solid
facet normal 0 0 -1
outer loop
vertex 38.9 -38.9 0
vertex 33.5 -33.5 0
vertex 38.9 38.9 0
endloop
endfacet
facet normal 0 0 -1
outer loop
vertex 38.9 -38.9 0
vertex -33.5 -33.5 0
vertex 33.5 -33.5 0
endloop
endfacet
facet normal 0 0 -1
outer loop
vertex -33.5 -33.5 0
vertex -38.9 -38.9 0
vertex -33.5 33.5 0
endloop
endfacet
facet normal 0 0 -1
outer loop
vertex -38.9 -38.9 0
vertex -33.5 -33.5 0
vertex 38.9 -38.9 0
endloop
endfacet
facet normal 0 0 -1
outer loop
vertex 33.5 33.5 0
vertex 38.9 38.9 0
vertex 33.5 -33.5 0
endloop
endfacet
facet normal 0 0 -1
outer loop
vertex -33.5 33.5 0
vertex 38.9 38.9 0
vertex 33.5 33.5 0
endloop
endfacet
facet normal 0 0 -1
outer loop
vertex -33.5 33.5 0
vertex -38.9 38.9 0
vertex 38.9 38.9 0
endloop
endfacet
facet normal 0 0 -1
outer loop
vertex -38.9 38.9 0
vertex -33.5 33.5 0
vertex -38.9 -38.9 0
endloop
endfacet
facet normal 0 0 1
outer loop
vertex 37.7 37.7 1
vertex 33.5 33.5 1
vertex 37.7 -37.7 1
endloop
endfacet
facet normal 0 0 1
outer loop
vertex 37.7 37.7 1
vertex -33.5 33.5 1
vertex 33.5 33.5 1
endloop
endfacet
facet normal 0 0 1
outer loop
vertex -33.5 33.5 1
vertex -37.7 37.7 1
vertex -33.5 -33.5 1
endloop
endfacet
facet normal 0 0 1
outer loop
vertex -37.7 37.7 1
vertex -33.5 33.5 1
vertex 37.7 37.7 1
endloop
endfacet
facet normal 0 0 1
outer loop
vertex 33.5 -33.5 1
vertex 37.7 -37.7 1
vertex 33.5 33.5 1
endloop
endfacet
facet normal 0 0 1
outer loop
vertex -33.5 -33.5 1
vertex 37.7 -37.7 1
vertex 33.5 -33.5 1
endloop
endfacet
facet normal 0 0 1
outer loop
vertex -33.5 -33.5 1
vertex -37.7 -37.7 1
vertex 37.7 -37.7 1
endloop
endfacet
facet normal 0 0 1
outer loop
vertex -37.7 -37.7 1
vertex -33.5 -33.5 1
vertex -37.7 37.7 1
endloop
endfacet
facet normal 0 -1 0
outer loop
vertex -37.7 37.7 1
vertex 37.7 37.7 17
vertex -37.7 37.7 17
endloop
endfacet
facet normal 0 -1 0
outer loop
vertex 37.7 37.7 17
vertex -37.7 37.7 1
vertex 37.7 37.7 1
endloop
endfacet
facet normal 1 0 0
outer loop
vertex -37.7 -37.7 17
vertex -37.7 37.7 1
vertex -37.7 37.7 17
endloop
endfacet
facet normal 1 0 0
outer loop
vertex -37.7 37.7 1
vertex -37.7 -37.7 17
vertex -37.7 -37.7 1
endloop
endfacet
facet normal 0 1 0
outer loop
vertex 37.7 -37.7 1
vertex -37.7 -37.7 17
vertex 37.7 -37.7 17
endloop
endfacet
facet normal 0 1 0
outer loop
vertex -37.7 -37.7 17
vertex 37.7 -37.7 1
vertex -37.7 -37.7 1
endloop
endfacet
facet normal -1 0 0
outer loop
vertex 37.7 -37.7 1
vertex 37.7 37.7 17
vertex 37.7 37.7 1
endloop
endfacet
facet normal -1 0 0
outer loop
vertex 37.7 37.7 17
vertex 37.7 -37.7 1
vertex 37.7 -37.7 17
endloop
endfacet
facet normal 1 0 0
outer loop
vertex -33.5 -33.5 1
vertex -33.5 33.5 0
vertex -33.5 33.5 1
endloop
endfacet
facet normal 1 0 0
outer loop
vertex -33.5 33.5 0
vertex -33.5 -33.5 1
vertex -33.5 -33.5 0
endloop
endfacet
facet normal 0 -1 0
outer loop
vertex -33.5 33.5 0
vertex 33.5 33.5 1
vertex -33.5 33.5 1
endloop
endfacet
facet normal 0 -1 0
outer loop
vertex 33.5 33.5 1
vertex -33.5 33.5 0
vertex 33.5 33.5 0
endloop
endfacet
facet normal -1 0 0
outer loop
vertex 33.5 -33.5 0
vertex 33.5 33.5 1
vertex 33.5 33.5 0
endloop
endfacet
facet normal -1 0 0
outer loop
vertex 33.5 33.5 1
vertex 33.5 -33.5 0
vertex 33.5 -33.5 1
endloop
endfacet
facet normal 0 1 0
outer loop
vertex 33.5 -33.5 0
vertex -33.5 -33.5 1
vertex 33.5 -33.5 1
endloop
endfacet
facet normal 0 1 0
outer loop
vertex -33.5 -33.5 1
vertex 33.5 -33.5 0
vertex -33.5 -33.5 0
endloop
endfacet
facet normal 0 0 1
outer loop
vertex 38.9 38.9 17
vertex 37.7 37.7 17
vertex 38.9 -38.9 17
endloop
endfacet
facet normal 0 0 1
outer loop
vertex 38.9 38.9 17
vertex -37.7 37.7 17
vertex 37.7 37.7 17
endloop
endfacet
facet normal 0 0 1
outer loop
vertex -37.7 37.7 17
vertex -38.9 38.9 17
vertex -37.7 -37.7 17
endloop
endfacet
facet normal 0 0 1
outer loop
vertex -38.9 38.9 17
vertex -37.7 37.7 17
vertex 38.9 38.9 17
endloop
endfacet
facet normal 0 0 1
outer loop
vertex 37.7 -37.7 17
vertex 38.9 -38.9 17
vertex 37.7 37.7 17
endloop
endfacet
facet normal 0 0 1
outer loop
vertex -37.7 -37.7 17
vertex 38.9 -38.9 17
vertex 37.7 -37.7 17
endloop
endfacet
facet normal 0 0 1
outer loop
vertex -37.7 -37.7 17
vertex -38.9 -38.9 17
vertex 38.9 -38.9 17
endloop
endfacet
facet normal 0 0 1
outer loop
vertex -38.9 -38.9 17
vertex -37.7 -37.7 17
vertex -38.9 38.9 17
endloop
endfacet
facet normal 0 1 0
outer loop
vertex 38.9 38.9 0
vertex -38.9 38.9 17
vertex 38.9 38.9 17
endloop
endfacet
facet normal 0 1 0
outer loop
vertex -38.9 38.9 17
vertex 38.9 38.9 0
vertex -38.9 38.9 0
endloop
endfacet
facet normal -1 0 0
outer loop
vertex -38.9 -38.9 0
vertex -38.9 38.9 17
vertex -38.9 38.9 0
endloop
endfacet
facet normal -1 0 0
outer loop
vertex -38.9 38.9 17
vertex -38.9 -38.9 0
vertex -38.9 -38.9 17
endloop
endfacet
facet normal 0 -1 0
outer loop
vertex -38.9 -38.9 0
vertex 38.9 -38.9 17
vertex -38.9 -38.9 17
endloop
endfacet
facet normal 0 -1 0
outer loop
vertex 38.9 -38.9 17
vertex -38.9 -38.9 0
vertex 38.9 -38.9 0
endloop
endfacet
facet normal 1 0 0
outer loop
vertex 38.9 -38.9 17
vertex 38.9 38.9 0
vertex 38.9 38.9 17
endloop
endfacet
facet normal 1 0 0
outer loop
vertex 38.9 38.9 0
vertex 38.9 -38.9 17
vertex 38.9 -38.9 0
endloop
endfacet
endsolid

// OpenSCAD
wall = 1.2;
area = [75.40, 75.40];
hole = [67.00, 67.00];

base_h = 1.00;
w = 16.00;

union() {
    linear_extrude(base_h) {
        difference() {
            square(area, center = true);
            square(hole, center = true);
        }
    }
    
    linear_extrude(base_h + w) {
        difference() {
            square([area[0] + wall * 2, area[1] + wall * 2], center = true);
            square(area, center = true);
        }
    }
}
